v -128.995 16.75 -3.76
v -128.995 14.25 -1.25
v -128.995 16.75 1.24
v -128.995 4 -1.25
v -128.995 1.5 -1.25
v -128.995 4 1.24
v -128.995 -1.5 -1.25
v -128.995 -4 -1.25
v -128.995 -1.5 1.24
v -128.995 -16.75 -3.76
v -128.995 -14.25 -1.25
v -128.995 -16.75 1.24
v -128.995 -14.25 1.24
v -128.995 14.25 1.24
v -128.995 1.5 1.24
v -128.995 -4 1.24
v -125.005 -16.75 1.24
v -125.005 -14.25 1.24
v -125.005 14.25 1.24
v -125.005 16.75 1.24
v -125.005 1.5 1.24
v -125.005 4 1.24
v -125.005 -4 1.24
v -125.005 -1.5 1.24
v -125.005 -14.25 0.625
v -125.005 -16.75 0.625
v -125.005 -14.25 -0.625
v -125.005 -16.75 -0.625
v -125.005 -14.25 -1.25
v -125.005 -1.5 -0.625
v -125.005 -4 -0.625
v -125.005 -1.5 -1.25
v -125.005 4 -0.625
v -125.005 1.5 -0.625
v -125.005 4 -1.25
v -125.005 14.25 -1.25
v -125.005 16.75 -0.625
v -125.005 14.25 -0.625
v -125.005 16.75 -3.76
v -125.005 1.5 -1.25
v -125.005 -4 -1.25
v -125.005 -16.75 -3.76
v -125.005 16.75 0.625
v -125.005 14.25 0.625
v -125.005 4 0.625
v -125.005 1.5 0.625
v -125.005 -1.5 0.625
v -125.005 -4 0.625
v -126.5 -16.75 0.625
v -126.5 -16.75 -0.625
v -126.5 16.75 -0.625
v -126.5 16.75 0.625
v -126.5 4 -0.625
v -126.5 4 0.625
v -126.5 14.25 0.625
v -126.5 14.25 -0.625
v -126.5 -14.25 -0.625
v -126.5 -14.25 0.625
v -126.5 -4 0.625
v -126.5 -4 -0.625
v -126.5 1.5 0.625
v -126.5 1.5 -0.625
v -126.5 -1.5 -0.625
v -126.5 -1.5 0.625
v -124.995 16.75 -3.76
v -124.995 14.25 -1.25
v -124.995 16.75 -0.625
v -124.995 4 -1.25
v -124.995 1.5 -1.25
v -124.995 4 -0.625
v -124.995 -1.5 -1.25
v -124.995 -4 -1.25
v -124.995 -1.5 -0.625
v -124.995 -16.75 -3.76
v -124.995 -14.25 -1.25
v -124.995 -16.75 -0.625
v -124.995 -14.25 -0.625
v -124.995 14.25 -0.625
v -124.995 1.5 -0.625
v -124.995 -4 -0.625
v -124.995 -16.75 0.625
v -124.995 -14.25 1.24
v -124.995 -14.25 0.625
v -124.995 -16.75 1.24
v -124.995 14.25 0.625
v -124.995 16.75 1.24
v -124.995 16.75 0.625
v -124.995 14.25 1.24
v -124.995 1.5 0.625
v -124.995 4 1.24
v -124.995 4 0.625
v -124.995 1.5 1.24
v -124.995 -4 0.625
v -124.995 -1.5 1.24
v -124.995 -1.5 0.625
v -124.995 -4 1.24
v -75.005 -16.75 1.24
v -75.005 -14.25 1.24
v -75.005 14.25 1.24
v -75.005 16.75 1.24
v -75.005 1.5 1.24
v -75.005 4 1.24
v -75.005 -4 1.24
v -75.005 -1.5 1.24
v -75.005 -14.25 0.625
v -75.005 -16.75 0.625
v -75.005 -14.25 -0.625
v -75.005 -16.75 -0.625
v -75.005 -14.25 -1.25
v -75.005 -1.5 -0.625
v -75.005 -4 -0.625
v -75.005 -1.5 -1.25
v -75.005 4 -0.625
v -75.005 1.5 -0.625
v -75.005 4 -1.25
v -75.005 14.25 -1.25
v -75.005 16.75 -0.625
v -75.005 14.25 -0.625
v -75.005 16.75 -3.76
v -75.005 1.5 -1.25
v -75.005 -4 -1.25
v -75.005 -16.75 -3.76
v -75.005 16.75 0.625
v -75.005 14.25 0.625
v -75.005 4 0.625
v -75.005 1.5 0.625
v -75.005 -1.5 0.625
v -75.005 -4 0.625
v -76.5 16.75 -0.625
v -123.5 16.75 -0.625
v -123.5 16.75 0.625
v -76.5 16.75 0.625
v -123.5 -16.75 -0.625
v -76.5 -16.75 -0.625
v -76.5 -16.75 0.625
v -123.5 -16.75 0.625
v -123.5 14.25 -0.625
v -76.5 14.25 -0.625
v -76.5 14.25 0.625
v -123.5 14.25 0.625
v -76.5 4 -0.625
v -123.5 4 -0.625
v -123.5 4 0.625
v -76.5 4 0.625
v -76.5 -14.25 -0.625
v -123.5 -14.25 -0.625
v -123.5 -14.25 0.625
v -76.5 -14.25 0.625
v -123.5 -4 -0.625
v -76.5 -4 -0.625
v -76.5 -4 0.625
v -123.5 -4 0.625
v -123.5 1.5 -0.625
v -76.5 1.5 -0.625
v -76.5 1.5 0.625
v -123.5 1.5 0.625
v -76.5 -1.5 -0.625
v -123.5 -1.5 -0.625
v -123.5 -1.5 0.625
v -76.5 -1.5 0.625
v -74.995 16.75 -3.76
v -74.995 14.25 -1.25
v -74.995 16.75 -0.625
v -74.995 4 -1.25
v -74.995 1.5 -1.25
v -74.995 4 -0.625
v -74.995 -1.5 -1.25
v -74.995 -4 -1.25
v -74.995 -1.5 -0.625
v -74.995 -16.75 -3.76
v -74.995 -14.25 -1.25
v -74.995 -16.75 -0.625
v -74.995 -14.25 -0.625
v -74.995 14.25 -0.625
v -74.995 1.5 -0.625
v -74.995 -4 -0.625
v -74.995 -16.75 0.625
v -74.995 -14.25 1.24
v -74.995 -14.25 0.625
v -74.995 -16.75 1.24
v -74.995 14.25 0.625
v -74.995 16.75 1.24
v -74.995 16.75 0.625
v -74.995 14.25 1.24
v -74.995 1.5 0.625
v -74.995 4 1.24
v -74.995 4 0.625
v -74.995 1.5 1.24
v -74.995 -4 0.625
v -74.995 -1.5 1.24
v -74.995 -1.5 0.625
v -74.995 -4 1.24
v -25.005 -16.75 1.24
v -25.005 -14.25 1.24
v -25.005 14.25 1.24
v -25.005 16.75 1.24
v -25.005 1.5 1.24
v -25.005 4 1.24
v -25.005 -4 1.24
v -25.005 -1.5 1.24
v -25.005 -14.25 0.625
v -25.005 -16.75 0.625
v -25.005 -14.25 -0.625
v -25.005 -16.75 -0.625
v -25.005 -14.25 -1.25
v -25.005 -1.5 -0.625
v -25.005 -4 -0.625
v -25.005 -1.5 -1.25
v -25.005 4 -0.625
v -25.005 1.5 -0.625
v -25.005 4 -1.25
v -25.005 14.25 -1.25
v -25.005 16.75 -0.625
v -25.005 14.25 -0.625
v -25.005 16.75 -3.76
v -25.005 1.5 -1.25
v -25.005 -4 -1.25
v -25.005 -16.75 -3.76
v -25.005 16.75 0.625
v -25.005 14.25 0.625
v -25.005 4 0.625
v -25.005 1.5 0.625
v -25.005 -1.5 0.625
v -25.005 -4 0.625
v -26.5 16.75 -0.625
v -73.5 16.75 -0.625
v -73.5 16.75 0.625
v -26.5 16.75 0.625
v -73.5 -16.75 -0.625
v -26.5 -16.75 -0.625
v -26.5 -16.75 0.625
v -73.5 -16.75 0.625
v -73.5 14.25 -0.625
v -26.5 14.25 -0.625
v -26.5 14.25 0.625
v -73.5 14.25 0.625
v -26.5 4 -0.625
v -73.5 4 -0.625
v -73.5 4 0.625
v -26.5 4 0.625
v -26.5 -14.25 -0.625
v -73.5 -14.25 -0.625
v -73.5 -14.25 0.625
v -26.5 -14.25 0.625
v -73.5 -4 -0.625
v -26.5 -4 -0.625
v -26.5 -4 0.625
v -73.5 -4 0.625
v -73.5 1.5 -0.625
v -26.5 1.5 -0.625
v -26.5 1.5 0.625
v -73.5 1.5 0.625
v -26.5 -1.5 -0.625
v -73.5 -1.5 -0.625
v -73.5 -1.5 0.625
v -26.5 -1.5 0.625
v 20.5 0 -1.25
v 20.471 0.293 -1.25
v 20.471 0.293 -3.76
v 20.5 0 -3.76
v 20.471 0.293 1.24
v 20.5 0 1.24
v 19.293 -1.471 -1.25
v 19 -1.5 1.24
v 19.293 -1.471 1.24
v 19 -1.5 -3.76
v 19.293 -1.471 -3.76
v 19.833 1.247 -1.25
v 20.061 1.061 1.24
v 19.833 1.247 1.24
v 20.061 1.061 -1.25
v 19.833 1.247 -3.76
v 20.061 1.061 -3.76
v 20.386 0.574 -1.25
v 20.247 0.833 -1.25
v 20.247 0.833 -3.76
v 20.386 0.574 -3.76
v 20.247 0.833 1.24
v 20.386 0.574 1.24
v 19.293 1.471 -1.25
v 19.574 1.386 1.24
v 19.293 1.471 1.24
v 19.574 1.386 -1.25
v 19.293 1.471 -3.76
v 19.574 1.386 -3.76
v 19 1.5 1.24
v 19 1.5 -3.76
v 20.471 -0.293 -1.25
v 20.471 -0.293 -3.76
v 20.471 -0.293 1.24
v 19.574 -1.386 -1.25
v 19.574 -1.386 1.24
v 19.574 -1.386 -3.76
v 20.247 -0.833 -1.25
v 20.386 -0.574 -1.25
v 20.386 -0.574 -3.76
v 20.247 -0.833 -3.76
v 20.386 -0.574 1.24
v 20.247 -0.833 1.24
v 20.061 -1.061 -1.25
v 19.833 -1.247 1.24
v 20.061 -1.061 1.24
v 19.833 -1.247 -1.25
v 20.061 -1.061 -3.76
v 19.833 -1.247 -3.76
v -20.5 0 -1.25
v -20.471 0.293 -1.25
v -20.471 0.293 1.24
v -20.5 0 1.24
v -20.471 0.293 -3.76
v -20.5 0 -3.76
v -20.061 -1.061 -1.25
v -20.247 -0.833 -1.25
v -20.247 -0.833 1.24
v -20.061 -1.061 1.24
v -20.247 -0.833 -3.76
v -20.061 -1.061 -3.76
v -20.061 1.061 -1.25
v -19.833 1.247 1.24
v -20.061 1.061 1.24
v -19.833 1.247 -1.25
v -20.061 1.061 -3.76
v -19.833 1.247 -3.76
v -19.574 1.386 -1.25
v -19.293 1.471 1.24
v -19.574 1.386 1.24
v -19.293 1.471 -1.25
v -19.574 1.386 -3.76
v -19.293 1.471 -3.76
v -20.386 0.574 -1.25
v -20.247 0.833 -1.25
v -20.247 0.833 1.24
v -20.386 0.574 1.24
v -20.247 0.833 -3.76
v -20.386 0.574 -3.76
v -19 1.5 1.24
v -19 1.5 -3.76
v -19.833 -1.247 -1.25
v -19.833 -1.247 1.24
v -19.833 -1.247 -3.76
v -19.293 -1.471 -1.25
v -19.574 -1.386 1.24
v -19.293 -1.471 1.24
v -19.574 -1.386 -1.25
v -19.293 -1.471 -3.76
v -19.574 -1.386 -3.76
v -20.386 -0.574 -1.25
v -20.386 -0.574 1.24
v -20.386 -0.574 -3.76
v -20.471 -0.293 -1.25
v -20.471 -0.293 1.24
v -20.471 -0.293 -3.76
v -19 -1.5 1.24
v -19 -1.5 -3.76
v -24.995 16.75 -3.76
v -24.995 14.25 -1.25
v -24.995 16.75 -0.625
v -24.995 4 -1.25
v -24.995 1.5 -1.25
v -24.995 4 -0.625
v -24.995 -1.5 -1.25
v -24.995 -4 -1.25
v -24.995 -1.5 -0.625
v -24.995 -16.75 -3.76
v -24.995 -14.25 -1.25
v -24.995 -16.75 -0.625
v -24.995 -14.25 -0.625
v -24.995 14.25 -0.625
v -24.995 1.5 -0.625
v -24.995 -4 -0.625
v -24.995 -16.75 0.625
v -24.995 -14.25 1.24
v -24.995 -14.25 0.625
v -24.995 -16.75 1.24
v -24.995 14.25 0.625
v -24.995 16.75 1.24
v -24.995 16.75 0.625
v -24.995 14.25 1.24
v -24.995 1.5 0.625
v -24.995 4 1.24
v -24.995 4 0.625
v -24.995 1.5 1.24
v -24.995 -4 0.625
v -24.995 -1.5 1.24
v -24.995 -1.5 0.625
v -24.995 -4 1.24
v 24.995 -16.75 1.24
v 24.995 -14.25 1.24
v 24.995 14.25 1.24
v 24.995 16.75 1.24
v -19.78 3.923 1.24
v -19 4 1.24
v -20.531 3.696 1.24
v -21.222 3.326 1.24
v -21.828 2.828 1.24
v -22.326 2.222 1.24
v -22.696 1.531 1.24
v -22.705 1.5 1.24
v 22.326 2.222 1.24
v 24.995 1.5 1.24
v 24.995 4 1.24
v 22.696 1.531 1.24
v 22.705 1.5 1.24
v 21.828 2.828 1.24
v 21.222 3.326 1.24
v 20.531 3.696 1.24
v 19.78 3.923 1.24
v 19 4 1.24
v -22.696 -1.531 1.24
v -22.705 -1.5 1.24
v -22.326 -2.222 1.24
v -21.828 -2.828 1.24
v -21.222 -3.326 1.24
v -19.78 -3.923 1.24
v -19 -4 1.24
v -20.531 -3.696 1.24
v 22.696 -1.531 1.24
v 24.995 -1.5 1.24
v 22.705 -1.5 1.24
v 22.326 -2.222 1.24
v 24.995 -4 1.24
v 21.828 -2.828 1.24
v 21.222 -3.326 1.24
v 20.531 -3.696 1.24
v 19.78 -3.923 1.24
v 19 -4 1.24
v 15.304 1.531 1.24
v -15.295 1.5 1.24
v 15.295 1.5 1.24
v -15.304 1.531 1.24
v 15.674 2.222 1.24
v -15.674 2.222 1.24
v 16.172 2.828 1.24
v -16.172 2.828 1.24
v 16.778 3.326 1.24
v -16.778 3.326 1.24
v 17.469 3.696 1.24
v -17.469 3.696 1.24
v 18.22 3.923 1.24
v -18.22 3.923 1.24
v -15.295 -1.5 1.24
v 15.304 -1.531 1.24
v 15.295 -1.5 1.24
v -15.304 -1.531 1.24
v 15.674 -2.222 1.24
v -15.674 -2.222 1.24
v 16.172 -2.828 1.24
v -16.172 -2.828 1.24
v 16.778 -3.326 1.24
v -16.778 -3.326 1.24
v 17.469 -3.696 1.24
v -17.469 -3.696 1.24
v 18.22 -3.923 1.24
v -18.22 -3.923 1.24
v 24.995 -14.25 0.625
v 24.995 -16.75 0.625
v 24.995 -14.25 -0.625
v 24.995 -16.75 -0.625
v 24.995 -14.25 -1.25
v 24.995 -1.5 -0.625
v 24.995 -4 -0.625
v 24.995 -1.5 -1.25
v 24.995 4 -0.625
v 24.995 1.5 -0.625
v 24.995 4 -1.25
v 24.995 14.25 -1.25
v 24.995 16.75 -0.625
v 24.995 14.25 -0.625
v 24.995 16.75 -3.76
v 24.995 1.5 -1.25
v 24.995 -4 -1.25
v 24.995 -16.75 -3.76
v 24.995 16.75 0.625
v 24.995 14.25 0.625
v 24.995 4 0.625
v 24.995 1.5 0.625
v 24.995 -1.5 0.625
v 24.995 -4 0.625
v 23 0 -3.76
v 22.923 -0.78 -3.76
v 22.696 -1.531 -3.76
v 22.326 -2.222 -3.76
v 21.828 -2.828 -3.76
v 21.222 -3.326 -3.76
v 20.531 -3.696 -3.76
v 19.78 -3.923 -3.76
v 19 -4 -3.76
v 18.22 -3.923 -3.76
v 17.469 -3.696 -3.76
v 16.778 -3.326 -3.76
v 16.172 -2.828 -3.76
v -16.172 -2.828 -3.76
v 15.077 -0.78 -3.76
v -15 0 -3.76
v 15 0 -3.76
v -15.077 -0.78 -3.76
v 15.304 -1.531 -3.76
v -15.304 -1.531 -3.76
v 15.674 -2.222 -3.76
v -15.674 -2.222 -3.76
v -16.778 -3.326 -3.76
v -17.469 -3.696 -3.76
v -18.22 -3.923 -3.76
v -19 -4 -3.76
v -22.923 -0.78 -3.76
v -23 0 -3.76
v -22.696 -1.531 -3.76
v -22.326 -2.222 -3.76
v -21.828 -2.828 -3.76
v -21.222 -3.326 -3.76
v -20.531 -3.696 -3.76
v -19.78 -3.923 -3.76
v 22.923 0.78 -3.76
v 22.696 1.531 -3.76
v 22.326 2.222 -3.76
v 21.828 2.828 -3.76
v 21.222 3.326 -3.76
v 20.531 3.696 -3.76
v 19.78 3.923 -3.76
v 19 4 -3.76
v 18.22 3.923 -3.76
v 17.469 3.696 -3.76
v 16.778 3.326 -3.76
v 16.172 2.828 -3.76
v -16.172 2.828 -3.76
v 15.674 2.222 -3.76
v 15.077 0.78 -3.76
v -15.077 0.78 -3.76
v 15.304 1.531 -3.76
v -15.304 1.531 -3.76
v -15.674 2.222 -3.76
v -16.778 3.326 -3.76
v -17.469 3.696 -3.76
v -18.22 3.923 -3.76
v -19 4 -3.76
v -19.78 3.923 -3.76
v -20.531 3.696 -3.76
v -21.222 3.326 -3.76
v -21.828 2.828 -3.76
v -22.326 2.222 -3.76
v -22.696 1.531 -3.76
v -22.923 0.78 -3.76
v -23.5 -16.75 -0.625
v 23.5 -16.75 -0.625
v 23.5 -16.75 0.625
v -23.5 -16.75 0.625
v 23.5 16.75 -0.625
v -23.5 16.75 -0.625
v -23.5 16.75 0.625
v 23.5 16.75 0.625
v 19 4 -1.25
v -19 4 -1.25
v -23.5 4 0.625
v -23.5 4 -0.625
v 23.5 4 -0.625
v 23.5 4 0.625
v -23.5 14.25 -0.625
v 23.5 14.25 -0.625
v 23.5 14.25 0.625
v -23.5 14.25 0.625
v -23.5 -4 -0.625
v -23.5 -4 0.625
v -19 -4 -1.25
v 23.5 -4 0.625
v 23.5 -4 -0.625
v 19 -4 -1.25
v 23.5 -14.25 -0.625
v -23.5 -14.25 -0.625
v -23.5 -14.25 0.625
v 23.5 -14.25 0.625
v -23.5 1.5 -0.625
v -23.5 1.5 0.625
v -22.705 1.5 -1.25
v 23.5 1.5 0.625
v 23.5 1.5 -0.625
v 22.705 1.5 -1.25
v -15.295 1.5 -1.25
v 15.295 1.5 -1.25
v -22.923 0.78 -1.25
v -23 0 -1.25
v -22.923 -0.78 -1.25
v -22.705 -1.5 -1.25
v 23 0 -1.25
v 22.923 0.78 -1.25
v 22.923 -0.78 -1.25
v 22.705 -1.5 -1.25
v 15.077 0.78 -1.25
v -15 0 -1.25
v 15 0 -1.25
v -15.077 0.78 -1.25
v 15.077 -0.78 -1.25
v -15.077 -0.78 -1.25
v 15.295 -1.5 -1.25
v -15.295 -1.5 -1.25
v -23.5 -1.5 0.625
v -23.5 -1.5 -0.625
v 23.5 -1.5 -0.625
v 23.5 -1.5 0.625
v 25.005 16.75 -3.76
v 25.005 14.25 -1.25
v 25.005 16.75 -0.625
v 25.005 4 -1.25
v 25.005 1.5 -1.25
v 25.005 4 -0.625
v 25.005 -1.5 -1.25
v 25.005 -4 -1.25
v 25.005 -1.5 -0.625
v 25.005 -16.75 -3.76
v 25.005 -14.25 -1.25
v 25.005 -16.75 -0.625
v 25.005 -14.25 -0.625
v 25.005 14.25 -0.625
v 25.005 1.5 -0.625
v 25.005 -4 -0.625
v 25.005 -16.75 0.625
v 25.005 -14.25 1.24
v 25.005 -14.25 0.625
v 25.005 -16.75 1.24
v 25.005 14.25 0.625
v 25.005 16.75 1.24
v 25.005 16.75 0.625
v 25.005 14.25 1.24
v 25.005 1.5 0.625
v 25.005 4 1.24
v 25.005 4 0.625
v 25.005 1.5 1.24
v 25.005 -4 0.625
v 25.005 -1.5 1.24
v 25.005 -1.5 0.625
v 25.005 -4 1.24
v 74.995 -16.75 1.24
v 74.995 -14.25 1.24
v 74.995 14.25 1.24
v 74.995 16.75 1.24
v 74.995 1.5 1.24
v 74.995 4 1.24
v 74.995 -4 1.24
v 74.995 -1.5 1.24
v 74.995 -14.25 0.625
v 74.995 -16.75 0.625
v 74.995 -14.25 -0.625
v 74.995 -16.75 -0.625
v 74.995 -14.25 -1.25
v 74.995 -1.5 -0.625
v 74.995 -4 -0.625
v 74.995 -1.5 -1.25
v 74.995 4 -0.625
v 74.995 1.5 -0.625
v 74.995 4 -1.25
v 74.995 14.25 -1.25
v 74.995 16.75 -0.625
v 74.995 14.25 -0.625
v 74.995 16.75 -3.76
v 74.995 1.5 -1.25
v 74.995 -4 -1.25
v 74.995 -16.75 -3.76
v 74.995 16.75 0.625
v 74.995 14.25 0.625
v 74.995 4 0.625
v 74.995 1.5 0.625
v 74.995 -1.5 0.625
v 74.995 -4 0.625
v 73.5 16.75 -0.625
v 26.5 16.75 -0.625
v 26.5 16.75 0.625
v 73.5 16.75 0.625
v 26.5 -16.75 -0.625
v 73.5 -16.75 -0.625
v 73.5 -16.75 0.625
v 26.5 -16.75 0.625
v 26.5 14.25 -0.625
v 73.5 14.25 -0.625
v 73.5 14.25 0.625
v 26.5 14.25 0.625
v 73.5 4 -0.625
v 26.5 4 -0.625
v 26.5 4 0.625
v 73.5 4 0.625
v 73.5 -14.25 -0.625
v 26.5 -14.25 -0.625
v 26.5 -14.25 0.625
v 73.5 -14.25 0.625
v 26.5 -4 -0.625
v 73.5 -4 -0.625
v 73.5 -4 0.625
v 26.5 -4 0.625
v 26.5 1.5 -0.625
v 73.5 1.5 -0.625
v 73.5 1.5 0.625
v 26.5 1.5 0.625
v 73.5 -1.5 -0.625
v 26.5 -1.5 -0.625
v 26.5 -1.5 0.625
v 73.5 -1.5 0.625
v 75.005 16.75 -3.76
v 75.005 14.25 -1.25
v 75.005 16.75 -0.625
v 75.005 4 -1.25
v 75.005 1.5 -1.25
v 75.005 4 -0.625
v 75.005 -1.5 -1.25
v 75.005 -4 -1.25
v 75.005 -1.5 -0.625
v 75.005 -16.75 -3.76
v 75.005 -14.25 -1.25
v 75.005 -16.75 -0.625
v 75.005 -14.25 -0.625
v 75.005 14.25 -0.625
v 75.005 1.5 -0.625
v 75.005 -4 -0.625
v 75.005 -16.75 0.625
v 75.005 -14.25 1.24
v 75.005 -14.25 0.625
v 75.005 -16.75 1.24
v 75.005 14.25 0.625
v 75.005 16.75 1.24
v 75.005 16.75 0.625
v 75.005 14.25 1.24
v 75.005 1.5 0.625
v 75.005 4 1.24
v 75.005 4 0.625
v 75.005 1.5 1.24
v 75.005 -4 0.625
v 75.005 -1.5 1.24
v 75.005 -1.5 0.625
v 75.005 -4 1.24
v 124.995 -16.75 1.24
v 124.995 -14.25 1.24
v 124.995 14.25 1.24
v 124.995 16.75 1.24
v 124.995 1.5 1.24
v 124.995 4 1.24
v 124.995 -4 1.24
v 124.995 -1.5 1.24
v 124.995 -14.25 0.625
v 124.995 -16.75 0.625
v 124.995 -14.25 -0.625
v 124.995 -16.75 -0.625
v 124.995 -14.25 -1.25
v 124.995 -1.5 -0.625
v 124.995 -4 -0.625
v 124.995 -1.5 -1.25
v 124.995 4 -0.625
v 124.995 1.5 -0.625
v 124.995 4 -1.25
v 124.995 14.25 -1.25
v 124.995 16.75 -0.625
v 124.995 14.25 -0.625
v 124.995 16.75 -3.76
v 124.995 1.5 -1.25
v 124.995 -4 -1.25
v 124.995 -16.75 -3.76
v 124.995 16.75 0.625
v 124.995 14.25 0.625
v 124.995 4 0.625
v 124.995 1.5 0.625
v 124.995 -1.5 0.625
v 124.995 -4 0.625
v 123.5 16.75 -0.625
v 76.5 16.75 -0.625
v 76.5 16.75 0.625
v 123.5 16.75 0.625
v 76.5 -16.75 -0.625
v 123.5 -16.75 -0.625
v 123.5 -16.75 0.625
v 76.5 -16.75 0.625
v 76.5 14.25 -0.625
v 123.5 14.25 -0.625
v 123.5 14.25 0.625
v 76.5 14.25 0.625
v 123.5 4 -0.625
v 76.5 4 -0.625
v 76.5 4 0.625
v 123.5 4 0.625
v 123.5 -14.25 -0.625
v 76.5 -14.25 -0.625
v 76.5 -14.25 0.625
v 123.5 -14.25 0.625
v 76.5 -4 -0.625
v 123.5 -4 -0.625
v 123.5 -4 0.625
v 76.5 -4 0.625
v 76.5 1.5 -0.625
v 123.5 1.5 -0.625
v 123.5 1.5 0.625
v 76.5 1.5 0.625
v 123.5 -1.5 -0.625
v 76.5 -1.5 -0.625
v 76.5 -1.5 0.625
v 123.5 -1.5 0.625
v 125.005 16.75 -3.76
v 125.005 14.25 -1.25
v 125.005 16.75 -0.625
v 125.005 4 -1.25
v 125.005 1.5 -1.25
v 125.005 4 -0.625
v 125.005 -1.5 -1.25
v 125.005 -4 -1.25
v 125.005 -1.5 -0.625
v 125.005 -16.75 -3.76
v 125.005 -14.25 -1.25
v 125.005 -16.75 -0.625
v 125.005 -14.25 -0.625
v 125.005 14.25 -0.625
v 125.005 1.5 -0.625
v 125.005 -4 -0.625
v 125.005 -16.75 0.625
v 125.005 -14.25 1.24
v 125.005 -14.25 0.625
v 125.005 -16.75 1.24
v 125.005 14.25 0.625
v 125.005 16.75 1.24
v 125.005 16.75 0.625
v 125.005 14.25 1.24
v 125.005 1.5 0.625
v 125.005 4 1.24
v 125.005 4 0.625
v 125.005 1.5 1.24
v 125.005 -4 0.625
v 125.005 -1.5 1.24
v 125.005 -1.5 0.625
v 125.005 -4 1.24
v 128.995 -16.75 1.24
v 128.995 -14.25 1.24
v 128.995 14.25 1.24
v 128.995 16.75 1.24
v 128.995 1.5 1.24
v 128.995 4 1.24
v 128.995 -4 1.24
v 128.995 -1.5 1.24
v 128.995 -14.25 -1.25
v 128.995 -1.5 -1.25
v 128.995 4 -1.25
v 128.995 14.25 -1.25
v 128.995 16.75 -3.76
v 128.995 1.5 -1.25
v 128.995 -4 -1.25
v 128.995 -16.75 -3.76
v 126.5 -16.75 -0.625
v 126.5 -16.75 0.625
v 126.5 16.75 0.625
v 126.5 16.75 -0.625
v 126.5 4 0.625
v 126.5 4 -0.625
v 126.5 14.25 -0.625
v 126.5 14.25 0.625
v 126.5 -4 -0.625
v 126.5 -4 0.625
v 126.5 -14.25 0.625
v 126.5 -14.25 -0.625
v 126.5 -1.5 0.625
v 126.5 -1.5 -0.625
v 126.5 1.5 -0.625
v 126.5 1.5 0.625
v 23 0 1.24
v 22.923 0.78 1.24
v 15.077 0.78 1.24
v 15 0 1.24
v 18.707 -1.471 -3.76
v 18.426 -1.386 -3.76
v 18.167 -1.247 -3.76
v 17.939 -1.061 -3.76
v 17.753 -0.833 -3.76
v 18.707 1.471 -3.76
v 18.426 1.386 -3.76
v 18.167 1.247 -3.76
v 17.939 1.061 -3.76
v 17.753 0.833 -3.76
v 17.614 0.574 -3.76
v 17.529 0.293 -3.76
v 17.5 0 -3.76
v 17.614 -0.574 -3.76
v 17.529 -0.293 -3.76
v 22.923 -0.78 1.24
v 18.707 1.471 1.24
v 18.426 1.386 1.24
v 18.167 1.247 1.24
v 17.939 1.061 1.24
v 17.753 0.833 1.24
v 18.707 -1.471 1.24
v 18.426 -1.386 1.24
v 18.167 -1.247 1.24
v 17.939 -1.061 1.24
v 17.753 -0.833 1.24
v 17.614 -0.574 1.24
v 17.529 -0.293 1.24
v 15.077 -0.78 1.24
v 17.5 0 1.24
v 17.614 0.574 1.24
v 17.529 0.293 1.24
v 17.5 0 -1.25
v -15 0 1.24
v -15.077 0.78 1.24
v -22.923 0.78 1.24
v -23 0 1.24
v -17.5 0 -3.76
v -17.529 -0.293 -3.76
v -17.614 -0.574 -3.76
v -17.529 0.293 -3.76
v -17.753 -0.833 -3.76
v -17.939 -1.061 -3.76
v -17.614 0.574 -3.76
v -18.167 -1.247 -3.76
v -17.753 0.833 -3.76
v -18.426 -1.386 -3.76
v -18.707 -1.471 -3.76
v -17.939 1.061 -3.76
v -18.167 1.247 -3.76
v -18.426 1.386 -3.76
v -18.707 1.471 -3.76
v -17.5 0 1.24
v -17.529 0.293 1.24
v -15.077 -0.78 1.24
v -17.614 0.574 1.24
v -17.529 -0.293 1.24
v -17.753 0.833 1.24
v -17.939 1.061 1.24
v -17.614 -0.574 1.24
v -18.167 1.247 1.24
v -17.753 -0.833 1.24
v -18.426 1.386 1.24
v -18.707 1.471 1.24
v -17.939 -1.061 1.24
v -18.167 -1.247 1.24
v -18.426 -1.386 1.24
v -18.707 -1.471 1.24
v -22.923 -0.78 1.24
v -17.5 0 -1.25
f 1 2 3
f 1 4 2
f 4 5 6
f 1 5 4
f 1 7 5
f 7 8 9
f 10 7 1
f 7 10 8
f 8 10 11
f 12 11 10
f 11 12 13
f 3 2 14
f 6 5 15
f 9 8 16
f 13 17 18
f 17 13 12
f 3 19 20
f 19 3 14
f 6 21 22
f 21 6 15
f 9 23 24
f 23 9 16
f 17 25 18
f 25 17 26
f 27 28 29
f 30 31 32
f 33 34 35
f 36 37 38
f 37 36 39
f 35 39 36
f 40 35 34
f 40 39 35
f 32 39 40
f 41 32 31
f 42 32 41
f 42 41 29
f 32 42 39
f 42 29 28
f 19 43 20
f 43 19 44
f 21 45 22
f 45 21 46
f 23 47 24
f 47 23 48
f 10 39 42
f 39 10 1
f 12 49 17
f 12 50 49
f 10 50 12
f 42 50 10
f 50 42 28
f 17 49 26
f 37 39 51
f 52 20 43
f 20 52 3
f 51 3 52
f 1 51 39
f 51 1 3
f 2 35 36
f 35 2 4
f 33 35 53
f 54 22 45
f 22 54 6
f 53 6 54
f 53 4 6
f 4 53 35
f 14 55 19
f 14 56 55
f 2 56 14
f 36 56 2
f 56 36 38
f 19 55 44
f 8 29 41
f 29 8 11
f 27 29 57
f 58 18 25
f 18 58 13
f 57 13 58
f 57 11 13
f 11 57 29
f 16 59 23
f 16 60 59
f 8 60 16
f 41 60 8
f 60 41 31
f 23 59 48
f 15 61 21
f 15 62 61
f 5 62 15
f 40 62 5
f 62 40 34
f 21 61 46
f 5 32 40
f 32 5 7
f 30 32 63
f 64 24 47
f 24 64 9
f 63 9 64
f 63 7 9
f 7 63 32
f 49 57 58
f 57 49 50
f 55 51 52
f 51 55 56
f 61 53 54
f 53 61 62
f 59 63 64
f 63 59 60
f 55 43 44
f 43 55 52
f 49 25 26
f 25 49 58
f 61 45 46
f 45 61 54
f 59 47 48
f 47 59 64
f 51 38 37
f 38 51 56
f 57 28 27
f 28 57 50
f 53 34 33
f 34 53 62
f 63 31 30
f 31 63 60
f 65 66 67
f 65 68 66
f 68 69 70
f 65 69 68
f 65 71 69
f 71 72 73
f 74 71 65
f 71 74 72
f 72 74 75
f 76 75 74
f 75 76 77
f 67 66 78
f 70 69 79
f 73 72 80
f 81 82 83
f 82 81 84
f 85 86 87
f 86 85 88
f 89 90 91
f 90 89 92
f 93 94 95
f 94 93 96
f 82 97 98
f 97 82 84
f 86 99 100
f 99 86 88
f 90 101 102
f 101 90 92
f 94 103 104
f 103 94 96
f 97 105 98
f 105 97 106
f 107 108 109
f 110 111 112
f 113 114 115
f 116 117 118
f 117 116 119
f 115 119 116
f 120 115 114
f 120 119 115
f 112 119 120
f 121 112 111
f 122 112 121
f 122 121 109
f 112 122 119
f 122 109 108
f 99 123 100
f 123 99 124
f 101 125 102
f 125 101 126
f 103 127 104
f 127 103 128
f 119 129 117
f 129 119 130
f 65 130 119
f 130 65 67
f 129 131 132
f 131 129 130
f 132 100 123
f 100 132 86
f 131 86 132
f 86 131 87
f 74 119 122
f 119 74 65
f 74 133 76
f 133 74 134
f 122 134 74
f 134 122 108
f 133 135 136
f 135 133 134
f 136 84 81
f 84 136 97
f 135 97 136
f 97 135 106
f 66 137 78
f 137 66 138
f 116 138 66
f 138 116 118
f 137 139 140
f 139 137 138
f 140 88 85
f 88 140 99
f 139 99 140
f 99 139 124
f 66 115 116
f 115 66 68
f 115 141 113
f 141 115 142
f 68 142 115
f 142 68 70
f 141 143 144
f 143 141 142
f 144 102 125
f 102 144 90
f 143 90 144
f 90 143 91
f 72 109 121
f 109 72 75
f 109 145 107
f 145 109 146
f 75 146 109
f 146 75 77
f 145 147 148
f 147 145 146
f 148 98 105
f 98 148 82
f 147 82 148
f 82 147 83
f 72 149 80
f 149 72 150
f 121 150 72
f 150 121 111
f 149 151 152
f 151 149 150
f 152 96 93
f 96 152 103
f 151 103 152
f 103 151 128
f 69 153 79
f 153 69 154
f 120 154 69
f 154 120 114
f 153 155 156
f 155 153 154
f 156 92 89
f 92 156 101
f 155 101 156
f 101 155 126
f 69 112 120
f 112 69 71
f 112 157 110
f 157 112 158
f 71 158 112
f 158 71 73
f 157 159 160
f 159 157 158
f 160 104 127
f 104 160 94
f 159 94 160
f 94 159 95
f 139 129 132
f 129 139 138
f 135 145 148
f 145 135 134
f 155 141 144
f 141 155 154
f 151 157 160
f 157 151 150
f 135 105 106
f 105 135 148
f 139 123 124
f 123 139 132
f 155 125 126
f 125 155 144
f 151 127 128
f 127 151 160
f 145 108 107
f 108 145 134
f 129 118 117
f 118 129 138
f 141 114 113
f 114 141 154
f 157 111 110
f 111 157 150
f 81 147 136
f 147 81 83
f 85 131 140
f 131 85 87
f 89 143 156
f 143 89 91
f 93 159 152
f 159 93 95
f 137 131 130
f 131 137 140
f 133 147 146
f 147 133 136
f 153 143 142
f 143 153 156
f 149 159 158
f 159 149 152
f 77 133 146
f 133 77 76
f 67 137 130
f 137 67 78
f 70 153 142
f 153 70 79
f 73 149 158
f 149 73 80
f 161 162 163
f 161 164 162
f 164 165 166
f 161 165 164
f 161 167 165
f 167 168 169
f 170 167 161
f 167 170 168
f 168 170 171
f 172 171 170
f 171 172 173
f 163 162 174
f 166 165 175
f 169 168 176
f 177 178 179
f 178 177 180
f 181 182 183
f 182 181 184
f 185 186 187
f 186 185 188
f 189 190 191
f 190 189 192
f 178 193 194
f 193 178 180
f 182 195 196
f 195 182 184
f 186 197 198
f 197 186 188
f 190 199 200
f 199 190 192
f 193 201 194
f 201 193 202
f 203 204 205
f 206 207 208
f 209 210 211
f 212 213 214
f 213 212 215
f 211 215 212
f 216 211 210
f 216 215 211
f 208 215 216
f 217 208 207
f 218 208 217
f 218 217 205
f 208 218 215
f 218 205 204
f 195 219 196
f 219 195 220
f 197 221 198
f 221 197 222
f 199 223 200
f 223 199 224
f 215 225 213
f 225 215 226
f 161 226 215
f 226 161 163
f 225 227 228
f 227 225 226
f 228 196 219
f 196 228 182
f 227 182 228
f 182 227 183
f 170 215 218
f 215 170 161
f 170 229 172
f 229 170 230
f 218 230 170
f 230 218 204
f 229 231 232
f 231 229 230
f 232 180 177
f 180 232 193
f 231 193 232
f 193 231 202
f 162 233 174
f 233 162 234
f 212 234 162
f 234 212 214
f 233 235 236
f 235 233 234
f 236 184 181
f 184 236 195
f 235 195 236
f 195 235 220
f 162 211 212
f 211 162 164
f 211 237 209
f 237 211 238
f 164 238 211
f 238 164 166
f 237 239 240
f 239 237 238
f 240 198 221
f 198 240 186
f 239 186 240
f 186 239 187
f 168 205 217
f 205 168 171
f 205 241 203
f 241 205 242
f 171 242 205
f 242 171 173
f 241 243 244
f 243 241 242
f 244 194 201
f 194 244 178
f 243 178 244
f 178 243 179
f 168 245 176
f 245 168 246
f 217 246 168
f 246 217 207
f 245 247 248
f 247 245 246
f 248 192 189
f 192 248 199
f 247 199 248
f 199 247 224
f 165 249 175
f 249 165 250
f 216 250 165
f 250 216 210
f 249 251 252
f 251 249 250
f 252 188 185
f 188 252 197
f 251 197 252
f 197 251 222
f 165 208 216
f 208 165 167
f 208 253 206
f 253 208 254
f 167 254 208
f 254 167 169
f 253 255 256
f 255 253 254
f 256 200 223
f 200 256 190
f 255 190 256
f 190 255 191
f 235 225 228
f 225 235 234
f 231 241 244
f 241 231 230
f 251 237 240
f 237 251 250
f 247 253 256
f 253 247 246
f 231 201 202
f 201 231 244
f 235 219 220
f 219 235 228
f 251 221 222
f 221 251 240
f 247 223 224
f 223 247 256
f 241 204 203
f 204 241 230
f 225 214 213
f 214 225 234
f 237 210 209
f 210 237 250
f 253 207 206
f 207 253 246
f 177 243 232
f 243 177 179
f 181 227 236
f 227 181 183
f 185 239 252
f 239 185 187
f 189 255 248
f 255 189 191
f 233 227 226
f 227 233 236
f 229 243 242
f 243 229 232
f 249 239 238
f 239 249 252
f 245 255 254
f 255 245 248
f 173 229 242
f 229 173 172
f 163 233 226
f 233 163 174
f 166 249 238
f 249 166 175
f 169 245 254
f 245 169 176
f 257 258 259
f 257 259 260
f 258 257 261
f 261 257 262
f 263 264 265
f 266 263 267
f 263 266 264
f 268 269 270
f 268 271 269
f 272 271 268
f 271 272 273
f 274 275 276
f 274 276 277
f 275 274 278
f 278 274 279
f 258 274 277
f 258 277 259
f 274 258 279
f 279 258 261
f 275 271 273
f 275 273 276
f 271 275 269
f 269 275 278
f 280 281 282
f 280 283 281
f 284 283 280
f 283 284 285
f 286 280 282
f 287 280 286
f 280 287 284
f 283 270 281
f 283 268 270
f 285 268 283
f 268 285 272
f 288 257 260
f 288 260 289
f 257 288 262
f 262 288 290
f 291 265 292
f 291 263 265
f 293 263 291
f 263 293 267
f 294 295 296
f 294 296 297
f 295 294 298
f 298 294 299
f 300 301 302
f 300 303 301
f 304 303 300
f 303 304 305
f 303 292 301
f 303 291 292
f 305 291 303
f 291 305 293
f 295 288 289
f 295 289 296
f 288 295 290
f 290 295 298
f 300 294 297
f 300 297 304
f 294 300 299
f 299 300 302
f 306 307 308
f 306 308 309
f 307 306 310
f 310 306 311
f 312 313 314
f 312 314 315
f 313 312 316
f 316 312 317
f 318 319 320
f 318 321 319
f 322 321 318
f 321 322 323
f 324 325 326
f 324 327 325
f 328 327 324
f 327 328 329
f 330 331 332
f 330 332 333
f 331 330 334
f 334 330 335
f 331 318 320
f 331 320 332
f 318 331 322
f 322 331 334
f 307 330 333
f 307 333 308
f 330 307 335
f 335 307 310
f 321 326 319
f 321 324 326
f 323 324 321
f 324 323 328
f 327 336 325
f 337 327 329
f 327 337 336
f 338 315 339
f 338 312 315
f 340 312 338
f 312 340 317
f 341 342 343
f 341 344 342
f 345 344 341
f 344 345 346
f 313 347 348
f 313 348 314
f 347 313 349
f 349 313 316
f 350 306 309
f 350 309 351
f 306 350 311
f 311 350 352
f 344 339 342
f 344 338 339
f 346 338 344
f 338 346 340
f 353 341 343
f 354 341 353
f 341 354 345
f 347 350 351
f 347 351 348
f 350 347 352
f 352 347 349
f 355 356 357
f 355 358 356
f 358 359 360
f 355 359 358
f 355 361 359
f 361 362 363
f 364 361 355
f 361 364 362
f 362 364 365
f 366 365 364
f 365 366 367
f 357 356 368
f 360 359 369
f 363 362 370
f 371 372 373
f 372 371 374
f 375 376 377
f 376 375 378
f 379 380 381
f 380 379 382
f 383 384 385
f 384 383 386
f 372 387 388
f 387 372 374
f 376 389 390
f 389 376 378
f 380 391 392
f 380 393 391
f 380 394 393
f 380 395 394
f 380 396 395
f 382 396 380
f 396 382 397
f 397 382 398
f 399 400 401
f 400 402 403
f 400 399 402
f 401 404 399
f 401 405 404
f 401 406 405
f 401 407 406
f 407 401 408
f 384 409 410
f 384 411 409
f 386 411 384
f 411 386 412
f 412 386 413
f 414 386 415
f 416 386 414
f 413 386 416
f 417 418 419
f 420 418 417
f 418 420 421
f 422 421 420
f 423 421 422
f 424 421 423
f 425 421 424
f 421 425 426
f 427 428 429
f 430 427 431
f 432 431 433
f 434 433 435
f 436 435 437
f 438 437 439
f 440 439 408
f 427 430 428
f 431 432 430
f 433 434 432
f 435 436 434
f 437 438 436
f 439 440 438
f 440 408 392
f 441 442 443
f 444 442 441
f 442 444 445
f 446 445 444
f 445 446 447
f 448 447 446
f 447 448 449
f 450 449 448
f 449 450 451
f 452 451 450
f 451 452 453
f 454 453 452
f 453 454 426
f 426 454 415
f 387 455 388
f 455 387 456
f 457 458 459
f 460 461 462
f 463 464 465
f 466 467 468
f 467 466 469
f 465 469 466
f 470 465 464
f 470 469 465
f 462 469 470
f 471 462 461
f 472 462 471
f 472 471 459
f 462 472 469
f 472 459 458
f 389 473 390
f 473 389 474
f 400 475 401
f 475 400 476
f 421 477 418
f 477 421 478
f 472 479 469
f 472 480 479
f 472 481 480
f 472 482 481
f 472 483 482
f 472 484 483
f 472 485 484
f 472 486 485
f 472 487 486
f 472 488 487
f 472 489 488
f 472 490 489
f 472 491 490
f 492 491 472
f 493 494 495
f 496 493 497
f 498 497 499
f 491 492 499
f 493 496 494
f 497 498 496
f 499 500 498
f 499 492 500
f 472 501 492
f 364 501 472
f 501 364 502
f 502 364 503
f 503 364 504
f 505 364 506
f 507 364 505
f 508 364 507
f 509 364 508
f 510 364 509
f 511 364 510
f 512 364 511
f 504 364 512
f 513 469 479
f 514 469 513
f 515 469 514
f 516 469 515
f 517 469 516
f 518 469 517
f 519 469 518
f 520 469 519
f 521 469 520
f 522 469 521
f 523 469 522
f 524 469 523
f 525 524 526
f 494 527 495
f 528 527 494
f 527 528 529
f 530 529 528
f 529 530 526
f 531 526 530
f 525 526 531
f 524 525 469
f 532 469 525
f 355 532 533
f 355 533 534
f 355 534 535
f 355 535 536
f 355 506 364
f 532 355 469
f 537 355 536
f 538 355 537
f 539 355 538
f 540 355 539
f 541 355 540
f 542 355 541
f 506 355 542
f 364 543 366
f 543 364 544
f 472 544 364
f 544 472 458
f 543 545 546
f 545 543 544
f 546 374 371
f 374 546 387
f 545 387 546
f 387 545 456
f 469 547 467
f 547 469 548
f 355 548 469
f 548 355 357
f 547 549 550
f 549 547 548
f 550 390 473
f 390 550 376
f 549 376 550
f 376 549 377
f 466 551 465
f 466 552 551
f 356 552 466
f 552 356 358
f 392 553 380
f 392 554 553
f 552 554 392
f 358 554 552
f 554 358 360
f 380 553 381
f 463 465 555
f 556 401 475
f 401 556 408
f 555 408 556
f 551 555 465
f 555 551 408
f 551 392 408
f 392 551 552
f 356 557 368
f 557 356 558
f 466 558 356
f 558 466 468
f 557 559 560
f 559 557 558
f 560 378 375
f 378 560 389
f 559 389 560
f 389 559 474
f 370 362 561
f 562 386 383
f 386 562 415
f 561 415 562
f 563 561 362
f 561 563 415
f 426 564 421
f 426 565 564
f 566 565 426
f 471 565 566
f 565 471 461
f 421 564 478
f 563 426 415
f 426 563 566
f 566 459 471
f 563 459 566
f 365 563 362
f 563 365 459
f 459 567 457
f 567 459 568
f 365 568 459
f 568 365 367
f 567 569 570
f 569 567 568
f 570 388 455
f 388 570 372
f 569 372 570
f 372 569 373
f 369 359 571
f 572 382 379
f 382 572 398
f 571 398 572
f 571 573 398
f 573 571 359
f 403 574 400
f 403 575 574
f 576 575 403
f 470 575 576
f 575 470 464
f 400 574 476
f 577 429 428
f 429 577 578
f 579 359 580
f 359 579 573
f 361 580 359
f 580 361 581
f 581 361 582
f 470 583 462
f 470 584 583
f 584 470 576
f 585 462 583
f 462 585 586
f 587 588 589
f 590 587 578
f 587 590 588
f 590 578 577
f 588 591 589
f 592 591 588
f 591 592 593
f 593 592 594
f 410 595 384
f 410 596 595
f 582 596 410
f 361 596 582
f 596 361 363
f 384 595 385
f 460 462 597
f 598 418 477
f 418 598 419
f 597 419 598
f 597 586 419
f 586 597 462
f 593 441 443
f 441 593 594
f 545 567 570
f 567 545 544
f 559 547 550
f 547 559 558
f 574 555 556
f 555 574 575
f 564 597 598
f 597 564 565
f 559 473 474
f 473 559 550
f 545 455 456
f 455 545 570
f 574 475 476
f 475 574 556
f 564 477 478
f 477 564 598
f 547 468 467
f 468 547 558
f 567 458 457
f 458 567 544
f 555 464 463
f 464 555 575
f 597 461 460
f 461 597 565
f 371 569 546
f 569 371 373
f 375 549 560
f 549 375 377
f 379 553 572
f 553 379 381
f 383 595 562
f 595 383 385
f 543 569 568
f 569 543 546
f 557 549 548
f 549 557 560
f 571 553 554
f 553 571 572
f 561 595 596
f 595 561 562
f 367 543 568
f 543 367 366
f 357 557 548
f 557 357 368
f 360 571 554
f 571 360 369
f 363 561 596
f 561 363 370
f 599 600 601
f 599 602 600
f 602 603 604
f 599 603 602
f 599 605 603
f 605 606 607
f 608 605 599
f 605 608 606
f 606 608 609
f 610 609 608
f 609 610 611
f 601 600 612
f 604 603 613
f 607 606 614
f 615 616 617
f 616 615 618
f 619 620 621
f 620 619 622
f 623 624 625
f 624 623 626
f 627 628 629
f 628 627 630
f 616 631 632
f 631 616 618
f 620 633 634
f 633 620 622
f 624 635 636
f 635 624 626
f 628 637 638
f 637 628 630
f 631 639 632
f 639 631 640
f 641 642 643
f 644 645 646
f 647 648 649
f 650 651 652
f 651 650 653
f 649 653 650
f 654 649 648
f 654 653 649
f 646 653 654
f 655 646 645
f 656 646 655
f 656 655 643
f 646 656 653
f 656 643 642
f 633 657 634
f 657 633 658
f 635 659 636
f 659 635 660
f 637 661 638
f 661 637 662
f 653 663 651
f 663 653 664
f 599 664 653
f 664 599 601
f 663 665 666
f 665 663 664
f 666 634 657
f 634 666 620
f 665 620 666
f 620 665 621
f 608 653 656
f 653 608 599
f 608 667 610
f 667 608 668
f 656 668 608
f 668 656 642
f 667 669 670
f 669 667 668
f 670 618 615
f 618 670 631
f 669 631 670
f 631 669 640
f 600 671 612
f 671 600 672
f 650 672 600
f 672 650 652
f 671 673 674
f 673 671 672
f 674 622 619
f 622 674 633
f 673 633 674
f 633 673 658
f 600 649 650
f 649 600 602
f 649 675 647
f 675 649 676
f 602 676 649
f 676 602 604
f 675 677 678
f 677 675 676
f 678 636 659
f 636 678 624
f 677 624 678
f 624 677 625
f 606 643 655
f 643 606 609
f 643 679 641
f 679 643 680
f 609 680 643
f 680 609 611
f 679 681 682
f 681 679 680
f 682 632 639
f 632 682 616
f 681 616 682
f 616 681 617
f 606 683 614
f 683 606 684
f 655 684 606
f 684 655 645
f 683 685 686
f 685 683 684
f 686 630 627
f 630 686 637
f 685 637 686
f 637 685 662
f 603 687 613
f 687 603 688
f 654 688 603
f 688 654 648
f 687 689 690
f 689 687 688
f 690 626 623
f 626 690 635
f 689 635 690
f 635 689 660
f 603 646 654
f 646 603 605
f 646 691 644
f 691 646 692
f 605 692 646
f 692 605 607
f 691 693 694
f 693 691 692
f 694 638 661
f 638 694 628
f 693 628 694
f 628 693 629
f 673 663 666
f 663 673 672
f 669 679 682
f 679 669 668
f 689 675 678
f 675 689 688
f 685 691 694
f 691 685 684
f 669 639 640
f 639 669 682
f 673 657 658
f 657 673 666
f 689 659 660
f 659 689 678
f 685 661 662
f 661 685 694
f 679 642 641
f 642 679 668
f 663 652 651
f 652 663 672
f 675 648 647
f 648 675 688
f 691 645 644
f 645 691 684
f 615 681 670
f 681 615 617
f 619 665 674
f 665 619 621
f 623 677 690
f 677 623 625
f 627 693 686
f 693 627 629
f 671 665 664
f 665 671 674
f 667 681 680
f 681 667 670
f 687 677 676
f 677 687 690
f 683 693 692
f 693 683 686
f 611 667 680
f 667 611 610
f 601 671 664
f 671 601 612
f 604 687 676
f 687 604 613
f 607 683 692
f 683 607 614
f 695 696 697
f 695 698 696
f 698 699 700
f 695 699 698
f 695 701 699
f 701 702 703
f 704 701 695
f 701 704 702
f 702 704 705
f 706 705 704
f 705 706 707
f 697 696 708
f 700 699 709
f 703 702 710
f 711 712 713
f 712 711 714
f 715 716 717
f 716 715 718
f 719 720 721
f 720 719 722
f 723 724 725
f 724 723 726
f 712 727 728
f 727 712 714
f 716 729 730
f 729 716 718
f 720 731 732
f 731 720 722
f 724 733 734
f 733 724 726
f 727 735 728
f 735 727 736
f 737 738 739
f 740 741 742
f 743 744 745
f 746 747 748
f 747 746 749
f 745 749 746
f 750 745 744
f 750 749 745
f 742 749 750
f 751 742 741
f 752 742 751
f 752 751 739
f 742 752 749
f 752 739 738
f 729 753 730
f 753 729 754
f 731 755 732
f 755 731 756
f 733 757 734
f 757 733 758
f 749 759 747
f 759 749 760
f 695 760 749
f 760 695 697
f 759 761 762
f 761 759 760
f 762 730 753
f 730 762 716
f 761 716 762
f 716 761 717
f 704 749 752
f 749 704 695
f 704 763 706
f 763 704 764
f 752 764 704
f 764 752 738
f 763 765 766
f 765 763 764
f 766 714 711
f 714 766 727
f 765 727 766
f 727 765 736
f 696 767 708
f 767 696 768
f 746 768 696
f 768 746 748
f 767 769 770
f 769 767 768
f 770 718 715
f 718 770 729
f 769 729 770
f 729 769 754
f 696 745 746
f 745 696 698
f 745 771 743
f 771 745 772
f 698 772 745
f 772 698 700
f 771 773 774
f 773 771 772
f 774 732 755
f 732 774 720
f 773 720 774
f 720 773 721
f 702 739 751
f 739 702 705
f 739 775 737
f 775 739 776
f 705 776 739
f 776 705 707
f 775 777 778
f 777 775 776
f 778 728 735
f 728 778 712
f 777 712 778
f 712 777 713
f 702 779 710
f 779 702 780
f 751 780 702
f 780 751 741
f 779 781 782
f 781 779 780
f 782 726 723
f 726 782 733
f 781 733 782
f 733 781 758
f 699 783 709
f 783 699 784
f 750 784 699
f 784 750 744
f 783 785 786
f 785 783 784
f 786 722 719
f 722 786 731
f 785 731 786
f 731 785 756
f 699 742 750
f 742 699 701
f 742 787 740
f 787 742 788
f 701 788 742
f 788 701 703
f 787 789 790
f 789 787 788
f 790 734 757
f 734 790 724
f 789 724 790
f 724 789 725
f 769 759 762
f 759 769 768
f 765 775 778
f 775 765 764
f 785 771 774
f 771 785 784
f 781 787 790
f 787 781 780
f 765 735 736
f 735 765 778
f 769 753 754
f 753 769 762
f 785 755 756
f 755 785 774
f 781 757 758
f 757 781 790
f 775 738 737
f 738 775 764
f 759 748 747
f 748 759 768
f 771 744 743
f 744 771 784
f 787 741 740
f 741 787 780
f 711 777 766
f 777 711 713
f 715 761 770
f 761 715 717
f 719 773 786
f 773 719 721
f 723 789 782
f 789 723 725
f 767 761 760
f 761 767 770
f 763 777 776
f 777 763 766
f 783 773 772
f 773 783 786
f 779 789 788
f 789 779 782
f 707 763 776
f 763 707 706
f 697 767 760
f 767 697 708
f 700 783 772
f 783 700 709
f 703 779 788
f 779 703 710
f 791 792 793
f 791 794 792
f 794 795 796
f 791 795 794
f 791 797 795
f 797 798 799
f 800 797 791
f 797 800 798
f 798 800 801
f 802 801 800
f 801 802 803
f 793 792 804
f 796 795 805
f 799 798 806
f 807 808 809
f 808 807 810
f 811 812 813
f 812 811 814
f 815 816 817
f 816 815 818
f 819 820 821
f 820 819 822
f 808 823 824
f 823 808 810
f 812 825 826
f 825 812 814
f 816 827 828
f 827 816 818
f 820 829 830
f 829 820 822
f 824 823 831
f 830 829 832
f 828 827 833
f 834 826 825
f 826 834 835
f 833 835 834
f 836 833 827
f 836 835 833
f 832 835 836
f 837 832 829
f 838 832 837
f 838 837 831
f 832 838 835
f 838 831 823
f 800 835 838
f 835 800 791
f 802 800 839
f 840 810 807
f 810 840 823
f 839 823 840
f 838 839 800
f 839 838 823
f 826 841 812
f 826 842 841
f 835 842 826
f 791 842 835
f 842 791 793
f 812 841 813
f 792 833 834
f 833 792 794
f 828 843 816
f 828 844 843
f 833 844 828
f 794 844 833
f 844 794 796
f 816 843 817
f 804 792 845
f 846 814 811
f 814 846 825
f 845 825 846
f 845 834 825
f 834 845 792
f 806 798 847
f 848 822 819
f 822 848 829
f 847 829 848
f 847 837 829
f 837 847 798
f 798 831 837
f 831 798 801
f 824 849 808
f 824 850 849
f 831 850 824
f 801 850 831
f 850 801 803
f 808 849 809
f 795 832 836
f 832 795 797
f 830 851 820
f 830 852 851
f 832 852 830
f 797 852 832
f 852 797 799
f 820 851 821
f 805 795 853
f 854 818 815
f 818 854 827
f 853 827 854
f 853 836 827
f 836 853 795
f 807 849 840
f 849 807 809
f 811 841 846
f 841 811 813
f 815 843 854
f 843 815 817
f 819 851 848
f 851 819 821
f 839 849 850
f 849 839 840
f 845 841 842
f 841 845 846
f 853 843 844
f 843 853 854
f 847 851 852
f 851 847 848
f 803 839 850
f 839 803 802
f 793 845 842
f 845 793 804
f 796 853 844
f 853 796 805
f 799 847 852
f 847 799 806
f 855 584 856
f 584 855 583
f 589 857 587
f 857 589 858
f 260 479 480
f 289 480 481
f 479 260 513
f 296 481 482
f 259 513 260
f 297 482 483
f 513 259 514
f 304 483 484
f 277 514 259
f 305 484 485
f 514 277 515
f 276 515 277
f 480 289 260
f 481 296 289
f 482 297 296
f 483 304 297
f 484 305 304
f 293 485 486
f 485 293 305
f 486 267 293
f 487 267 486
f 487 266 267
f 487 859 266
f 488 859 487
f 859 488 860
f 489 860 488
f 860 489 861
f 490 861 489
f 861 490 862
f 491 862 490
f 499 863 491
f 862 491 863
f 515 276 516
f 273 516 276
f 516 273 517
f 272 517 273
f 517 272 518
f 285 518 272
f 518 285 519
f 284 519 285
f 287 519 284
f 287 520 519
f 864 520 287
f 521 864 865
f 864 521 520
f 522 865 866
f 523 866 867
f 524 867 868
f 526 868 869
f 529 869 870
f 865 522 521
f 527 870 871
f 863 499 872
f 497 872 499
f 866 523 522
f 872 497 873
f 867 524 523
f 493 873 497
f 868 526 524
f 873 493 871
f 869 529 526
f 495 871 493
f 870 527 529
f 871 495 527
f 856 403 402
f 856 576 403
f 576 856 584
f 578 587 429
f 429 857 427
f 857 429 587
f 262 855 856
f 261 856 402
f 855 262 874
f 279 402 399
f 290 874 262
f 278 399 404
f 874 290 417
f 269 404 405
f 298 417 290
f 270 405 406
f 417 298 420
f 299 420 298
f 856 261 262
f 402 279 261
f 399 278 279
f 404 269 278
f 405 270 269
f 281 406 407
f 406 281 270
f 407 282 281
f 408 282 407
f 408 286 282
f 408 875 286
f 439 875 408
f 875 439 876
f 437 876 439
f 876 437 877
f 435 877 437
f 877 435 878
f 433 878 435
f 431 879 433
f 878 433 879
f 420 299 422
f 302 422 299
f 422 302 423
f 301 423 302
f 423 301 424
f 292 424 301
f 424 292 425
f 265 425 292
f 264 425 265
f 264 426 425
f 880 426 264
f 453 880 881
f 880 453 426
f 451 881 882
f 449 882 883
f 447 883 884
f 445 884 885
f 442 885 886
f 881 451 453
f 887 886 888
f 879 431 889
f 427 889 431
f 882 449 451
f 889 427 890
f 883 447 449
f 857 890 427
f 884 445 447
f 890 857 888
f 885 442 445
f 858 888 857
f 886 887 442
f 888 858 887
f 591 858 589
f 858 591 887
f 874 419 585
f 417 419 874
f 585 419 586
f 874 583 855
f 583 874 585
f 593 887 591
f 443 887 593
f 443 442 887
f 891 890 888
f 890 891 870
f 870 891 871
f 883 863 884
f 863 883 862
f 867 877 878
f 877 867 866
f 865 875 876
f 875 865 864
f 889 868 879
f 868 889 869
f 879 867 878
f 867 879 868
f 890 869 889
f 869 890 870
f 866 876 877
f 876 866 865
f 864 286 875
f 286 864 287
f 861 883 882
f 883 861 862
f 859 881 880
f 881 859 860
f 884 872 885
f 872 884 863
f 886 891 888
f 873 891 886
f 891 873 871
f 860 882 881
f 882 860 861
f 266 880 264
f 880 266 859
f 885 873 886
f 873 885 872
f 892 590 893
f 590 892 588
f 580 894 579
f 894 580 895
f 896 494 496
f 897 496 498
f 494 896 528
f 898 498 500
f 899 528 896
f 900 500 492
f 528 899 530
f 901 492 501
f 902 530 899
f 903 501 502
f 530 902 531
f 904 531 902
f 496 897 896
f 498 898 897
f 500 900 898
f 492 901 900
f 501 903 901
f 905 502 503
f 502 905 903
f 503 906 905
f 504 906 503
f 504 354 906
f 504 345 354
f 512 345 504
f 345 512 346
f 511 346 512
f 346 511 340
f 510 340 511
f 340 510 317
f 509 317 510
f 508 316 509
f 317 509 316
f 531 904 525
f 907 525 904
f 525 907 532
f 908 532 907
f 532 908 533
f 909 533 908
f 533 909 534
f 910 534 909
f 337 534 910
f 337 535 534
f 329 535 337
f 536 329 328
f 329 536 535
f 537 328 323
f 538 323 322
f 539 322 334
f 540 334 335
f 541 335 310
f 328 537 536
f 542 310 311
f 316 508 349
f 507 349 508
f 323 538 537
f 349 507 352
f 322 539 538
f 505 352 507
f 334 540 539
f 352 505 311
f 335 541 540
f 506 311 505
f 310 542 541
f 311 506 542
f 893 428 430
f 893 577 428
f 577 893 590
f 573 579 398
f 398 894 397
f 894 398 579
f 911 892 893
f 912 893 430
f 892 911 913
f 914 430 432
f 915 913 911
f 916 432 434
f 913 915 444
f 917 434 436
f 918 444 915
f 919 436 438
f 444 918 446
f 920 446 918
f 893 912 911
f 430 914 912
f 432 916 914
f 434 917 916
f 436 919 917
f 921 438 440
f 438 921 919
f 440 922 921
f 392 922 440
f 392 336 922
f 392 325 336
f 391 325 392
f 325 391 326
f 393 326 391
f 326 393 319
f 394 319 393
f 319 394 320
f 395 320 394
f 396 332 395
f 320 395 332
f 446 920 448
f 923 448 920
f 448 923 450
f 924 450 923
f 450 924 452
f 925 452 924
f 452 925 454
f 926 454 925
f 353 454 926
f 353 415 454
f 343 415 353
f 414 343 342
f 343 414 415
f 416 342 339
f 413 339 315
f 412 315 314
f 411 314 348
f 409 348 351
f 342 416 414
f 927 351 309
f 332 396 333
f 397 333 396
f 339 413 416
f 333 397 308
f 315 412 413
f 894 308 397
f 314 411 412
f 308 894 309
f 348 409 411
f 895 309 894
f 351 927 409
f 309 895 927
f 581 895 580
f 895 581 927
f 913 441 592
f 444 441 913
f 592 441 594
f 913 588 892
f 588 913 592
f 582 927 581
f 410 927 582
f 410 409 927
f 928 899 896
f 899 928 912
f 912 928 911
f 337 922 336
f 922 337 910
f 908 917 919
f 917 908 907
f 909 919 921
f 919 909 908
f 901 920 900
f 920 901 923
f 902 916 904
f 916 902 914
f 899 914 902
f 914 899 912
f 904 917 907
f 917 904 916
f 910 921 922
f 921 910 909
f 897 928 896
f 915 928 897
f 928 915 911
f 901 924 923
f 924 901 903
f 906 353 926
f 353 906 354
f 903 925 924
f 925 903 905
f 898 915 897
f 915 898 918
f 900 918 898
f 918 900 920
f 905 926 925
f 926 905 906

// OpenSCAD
// Led Mounting strip for Troublemaker v2


$fn = 32; // accuracy of curves
pad = 0.01; // padding to maintain mainfold
fudge = 0.25; // extra space for push fit

t = 2.5;

led_width = 10.0 + fudge;
mount_width = 25.0;

hole_spacing = 38.0;
hole_dia = 3;

module channel(width) {
    cube([width,led_width, t], center=true);
}

module hole(){
    difference() {
        cylinder(d=hole_dia+t*2, h=t*2, center=true);
        cylinder(d=hole_dia, h=100, center=true);
    }
}

module mount(holes=false, r_cut=true, l_cut=true, width=50) {

    thickness = t*2;
    height = led_width*2+hole_dia+t*4;

    difference() {
        union() {
            translate([0,0,-t/2-pad]) color("blue") cube([width-pad,height,thickness], center=true);

        }
        o = hole_dia/2+t;

        translate([0,led_width/2+o,0]) channel(width);
        translate([0,-led_width/2-o,0]) channel(width);

        cube([width,hole_dia, t], center=true);
        
        if (holes) {
            translate([hole_spacing/2,0,-t/2-pad]) cylinder(d=hole_dia, h=100, center=true);
            translate([-hole_spacing/2,0,-t/2-pad]) cylinder(d=hole_dia, h=100, center=true);
        }
            
        // end cut
        if (r_cut) translate([width/2,0,0]) color("red") cube([3,100,1.25], center=true);
        if (l_cut) translate([-width/2,0,0]) color("red") cube([3,100,1.25], center=true);
    }

}

union() {
    translate([-127,0,0]) mount(width=4, l_cut=false);
    translate([-100,0,0]) mount();
    translate([-50,0,0]) mount();
    mount(holes=true);
    translate([50,0,0]) mount();
    translate([100,0,0]) mount();
    translate([127,0,0]) mount(width=4, r_cut=false);

    // mounting holes
    translate([hole_spacing/2,0,-t/2-pad]) hole();
    translate([-hole_spacing/2,0,-t/2-pad]) hole();
}
